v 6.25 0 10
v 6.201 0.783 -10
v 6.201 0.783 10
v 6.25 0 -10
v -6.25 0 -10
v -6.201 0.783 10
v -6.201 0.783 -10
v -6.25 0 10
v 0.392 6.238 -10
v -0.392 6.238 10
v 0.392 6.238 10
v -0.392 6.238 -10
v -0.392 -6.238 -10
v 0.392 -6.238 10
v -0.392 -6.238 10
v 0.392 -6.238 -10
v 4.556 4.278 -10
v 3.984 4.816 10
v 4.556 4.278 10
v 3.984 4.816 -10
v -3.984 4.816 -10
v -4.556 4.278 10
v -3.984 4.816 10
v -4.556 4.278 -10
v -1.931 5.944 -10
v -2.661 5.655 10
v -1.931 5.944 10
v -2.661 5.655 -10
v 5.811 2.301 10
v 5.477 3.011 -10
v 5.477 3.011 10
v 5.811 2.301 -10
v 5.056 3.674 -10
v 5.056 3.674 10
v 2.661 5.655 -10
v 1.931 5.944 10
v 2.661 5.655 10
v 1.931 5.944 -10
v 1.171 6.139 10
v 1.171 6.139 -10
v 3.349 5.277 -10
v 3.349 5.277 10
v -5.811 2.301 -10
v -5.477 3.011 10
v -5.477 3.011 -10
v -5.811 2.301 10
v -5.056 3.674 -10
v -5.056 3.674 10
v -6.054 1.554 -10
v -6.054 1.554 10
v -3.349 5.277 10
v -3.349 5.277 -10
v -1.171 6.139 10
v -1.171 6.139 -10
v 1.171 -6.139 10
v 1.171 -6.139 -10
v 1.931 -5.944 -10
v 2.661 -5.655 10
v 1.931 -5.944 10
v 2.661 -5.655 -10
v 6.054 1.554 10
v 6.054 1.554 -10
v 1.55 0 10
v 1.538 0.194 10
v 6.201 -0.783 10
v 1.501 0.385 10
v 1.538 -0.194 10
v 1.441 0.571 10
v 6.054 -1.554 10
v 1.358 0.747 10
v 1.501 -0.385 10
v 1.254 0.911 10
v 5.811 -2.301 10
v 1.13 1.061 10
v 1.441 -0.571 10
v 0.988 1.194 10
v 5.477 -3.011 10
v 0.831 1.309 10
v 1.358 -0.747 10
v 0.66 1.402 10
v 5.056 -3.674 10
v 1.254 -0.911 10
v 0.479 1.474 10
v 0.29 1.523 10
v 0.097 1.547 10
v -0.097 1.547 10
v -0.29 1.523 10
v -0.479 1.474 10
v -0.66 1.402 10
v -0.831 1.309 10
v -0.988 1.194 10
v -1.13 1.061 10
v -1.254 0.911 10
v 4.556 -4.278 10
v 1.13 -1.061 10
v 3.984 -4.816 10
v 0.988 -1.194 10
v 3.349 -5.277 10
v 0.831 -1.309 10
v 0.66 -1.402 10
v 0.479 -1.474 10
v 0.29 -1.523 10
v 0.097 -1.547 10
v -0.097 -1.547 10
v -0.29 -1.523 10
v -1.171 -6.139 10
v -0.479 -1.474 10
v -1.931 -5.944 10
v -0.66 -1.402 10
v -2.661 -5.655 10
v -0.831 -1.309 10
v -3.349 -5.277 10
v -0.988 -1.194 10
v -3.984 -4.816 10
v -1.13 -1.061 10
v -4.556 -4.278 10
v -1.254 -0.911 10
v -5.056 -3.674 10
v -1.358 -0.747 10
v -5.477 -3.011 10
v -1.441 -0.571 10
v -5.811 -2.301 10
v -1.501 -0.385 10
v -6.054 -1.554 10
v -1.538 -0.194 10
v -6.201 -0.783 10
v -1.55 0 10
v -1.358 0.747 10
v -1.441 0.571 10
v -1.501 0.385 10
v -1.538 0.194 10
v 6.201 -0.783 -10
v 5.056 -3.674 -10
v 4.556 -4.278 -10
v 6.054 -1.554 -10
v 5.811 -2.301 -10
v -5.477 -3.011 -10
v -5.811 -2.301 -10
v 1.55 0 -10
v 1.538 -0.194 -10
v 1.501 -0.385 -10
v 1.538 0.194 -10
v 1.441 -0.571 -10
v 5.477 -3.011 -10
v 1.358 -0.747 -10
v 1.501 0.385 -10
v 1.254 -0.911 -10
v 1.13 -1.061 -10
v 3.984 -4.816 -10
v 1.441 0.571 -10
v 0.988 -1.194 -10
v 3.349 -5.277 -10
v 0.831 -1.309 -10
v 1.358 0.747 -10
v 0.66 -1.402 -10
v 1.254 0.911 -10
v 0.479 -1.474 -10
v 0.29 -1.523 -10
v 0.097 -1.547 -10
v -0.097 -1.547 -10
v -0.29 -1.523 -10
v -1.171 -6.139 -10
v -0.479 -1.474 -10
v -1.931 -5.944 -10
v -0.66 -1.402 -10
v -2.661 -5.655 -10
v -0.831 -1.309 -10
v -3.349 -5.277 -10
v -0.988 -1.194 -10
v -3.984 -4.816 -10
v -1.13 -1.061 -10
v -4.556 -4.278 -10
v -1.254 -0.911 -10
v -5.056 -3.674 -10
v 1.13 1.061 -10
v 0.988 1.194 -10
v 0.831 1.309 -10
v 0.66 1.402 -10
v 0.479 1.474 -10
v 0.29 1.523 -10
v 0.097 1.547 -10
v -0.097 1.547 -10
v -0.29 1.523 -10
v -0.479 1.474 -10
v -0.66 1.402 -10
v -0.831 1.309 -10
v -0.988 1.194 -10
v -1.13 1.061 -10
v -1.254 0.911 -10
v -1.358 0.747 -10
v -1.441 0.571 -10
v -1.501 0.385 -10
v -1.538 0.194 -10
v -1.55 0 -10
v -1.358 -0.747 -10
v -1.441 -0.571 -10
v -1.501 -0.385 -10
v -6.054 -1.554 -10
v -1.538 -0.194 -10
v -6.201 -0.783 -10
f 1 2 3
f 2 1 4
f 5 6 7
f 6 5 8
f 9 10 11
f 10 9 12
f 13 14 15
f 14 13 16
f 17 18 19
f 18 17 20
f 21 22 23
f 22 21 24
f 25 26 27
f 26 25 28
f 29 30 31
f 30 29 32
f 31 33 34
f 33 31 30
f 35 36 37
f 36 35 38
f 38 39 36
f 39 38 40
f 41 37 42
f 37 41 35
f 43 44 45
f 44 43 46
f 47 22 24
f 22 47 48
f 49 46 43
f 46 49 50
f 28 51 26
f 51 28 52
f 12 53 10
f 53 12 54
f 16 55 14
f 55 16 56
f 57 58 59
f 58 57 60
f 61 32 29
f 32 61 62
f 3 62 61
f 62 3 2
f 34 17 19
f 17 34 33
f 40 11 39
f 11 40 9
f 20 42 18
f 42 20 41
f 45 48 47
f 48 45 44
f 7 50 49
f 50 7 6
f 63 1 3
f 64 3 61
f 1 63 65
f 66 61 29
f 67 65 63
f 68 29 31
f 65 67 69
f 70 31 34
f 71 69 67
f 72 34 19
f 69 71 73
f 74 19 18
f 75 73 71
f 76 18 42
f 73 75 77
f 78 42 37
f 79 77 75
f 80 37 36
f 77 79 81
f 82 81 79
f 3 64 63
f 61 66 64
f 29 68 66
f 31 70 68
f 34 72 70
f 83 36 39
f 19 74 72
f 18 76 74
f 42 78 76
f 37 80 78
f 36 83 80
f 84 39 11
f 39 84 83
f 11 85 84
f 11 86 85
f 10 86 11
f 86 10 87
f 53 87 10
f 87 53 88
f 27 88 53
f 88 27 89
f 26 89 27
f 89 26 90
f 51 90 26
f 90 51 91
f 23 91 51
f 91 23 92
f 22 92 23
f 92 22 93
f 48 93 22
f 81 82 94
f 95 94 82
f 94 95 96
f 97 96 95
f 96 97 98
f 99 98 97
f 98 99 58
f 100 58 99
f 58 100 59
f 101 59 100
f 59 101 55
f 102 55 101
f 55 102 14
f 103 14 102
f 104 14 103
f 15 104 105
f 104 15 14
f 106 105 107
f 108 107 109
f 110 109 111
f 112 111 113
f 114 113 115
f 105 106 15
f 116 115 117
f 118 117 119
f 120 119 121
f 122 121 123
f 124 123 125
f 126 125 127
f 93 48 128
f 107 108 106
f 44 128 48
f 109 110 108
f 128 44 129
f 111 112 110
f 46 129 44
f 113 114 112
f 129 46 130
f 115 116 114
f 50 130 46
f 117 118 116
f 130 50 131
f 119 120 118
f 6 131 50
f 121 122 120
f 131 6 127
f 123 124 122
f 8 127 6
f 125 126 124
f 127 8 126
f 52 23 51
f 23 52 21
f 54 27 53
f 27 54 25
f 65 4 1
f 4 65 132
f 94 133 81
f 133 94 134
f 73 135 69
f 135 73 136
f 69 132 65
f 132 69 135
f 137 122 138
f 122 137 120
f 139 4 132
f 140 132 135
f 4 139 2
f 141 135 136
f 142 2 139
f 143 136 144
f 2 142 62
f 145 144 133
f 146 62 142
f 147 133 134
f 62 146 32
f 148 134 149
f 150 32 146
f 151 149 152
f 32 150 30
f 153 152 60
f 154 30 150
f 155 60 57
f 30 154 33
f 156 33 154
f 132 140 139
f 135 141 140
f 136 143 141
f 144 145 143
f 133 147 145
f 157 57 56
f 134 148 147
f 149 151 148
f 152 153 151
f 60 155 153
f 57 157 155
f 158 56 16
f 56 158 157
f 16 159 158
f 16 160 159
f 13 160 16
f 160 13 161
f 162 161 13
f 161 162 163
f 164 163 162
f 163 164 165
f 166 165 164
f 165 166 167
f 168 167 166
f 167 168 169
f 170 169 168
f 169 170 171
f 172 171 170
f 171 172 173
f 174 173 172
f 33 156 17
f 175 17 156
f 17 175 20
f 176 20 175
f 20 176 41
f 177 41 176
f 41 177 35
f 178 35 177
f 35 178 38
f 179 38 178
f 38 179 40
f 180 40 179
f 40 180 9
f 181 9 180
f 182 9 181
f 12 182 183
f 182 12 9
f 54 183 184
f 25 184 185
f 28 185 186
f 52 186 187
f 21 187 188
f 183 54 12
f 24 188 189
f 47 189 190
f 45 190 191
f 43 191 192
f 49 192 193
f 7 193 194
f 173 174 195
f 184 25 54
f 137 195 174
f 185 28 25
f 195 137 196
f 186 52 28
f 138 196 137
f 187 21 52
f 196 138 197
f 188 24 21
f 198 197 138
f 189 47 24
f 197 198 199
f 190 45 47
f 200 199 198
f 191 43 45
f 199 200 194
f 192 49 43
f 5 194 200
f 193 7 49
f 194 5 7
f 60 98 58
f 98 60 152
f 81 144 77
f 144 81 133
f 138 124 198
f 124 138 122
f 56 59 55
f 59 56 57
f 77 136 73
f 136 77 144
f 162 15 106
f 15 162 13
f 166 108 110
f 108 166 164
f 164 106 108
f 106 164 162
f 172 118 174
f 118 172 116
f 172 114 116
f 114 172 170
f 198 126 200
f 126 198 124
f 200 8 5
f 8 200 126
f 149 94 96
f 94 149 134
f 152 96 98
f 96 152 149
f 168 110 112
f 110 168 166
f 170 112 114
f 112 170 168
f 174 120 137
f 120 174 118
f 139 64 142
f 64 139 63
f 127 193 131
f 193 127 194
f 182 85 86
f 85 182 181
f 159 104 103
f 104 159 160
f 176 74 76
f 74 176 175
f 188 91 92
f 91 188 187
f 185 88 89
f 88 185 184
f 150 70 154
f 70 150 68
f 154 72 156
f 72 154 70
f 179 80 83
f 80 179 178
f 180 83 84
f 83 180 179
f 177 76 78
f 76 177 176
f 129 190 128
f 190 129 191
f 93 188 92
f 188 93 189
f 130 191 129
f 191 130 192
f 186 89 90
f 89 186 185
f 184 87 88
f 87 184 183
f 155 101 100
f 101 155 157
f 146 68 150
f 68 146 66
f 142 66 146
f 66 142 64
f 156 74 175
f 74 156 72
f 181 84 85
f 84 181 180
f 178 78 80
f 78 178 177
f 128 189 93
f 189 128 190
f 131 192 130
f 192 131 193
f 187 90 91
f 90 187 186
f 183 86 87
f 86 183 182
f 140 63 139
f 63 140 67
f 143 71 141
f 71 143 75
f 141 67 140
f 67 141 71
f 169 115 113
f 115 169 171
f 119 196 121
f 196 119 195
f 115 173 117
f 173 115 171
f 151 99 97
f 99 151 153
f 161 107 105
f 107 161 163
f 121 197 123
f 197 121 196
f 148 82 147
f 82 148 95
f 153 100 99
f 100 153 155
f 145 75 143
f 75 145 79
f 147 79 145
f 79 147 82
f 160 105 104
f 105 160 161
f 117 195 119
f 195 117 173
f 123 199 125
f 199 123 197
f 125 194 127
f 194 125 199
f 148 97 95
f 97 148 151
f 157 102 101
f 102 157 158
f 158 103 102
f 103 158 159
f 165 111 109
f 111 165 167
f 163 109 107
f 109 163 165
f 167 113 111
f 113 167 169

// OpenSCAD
$fn = 50;


difference() {
	union() {
		translate(v = [0, 0, -10.0000000000]) {
			cylinder(h = 20, r = 6.2500000000);
		}
	}
	union() {
		translate(v = [0, 0, -100.0000000000]) {
			cylinder(h = 200, r = 1.5500000000);
		}
	}
}
